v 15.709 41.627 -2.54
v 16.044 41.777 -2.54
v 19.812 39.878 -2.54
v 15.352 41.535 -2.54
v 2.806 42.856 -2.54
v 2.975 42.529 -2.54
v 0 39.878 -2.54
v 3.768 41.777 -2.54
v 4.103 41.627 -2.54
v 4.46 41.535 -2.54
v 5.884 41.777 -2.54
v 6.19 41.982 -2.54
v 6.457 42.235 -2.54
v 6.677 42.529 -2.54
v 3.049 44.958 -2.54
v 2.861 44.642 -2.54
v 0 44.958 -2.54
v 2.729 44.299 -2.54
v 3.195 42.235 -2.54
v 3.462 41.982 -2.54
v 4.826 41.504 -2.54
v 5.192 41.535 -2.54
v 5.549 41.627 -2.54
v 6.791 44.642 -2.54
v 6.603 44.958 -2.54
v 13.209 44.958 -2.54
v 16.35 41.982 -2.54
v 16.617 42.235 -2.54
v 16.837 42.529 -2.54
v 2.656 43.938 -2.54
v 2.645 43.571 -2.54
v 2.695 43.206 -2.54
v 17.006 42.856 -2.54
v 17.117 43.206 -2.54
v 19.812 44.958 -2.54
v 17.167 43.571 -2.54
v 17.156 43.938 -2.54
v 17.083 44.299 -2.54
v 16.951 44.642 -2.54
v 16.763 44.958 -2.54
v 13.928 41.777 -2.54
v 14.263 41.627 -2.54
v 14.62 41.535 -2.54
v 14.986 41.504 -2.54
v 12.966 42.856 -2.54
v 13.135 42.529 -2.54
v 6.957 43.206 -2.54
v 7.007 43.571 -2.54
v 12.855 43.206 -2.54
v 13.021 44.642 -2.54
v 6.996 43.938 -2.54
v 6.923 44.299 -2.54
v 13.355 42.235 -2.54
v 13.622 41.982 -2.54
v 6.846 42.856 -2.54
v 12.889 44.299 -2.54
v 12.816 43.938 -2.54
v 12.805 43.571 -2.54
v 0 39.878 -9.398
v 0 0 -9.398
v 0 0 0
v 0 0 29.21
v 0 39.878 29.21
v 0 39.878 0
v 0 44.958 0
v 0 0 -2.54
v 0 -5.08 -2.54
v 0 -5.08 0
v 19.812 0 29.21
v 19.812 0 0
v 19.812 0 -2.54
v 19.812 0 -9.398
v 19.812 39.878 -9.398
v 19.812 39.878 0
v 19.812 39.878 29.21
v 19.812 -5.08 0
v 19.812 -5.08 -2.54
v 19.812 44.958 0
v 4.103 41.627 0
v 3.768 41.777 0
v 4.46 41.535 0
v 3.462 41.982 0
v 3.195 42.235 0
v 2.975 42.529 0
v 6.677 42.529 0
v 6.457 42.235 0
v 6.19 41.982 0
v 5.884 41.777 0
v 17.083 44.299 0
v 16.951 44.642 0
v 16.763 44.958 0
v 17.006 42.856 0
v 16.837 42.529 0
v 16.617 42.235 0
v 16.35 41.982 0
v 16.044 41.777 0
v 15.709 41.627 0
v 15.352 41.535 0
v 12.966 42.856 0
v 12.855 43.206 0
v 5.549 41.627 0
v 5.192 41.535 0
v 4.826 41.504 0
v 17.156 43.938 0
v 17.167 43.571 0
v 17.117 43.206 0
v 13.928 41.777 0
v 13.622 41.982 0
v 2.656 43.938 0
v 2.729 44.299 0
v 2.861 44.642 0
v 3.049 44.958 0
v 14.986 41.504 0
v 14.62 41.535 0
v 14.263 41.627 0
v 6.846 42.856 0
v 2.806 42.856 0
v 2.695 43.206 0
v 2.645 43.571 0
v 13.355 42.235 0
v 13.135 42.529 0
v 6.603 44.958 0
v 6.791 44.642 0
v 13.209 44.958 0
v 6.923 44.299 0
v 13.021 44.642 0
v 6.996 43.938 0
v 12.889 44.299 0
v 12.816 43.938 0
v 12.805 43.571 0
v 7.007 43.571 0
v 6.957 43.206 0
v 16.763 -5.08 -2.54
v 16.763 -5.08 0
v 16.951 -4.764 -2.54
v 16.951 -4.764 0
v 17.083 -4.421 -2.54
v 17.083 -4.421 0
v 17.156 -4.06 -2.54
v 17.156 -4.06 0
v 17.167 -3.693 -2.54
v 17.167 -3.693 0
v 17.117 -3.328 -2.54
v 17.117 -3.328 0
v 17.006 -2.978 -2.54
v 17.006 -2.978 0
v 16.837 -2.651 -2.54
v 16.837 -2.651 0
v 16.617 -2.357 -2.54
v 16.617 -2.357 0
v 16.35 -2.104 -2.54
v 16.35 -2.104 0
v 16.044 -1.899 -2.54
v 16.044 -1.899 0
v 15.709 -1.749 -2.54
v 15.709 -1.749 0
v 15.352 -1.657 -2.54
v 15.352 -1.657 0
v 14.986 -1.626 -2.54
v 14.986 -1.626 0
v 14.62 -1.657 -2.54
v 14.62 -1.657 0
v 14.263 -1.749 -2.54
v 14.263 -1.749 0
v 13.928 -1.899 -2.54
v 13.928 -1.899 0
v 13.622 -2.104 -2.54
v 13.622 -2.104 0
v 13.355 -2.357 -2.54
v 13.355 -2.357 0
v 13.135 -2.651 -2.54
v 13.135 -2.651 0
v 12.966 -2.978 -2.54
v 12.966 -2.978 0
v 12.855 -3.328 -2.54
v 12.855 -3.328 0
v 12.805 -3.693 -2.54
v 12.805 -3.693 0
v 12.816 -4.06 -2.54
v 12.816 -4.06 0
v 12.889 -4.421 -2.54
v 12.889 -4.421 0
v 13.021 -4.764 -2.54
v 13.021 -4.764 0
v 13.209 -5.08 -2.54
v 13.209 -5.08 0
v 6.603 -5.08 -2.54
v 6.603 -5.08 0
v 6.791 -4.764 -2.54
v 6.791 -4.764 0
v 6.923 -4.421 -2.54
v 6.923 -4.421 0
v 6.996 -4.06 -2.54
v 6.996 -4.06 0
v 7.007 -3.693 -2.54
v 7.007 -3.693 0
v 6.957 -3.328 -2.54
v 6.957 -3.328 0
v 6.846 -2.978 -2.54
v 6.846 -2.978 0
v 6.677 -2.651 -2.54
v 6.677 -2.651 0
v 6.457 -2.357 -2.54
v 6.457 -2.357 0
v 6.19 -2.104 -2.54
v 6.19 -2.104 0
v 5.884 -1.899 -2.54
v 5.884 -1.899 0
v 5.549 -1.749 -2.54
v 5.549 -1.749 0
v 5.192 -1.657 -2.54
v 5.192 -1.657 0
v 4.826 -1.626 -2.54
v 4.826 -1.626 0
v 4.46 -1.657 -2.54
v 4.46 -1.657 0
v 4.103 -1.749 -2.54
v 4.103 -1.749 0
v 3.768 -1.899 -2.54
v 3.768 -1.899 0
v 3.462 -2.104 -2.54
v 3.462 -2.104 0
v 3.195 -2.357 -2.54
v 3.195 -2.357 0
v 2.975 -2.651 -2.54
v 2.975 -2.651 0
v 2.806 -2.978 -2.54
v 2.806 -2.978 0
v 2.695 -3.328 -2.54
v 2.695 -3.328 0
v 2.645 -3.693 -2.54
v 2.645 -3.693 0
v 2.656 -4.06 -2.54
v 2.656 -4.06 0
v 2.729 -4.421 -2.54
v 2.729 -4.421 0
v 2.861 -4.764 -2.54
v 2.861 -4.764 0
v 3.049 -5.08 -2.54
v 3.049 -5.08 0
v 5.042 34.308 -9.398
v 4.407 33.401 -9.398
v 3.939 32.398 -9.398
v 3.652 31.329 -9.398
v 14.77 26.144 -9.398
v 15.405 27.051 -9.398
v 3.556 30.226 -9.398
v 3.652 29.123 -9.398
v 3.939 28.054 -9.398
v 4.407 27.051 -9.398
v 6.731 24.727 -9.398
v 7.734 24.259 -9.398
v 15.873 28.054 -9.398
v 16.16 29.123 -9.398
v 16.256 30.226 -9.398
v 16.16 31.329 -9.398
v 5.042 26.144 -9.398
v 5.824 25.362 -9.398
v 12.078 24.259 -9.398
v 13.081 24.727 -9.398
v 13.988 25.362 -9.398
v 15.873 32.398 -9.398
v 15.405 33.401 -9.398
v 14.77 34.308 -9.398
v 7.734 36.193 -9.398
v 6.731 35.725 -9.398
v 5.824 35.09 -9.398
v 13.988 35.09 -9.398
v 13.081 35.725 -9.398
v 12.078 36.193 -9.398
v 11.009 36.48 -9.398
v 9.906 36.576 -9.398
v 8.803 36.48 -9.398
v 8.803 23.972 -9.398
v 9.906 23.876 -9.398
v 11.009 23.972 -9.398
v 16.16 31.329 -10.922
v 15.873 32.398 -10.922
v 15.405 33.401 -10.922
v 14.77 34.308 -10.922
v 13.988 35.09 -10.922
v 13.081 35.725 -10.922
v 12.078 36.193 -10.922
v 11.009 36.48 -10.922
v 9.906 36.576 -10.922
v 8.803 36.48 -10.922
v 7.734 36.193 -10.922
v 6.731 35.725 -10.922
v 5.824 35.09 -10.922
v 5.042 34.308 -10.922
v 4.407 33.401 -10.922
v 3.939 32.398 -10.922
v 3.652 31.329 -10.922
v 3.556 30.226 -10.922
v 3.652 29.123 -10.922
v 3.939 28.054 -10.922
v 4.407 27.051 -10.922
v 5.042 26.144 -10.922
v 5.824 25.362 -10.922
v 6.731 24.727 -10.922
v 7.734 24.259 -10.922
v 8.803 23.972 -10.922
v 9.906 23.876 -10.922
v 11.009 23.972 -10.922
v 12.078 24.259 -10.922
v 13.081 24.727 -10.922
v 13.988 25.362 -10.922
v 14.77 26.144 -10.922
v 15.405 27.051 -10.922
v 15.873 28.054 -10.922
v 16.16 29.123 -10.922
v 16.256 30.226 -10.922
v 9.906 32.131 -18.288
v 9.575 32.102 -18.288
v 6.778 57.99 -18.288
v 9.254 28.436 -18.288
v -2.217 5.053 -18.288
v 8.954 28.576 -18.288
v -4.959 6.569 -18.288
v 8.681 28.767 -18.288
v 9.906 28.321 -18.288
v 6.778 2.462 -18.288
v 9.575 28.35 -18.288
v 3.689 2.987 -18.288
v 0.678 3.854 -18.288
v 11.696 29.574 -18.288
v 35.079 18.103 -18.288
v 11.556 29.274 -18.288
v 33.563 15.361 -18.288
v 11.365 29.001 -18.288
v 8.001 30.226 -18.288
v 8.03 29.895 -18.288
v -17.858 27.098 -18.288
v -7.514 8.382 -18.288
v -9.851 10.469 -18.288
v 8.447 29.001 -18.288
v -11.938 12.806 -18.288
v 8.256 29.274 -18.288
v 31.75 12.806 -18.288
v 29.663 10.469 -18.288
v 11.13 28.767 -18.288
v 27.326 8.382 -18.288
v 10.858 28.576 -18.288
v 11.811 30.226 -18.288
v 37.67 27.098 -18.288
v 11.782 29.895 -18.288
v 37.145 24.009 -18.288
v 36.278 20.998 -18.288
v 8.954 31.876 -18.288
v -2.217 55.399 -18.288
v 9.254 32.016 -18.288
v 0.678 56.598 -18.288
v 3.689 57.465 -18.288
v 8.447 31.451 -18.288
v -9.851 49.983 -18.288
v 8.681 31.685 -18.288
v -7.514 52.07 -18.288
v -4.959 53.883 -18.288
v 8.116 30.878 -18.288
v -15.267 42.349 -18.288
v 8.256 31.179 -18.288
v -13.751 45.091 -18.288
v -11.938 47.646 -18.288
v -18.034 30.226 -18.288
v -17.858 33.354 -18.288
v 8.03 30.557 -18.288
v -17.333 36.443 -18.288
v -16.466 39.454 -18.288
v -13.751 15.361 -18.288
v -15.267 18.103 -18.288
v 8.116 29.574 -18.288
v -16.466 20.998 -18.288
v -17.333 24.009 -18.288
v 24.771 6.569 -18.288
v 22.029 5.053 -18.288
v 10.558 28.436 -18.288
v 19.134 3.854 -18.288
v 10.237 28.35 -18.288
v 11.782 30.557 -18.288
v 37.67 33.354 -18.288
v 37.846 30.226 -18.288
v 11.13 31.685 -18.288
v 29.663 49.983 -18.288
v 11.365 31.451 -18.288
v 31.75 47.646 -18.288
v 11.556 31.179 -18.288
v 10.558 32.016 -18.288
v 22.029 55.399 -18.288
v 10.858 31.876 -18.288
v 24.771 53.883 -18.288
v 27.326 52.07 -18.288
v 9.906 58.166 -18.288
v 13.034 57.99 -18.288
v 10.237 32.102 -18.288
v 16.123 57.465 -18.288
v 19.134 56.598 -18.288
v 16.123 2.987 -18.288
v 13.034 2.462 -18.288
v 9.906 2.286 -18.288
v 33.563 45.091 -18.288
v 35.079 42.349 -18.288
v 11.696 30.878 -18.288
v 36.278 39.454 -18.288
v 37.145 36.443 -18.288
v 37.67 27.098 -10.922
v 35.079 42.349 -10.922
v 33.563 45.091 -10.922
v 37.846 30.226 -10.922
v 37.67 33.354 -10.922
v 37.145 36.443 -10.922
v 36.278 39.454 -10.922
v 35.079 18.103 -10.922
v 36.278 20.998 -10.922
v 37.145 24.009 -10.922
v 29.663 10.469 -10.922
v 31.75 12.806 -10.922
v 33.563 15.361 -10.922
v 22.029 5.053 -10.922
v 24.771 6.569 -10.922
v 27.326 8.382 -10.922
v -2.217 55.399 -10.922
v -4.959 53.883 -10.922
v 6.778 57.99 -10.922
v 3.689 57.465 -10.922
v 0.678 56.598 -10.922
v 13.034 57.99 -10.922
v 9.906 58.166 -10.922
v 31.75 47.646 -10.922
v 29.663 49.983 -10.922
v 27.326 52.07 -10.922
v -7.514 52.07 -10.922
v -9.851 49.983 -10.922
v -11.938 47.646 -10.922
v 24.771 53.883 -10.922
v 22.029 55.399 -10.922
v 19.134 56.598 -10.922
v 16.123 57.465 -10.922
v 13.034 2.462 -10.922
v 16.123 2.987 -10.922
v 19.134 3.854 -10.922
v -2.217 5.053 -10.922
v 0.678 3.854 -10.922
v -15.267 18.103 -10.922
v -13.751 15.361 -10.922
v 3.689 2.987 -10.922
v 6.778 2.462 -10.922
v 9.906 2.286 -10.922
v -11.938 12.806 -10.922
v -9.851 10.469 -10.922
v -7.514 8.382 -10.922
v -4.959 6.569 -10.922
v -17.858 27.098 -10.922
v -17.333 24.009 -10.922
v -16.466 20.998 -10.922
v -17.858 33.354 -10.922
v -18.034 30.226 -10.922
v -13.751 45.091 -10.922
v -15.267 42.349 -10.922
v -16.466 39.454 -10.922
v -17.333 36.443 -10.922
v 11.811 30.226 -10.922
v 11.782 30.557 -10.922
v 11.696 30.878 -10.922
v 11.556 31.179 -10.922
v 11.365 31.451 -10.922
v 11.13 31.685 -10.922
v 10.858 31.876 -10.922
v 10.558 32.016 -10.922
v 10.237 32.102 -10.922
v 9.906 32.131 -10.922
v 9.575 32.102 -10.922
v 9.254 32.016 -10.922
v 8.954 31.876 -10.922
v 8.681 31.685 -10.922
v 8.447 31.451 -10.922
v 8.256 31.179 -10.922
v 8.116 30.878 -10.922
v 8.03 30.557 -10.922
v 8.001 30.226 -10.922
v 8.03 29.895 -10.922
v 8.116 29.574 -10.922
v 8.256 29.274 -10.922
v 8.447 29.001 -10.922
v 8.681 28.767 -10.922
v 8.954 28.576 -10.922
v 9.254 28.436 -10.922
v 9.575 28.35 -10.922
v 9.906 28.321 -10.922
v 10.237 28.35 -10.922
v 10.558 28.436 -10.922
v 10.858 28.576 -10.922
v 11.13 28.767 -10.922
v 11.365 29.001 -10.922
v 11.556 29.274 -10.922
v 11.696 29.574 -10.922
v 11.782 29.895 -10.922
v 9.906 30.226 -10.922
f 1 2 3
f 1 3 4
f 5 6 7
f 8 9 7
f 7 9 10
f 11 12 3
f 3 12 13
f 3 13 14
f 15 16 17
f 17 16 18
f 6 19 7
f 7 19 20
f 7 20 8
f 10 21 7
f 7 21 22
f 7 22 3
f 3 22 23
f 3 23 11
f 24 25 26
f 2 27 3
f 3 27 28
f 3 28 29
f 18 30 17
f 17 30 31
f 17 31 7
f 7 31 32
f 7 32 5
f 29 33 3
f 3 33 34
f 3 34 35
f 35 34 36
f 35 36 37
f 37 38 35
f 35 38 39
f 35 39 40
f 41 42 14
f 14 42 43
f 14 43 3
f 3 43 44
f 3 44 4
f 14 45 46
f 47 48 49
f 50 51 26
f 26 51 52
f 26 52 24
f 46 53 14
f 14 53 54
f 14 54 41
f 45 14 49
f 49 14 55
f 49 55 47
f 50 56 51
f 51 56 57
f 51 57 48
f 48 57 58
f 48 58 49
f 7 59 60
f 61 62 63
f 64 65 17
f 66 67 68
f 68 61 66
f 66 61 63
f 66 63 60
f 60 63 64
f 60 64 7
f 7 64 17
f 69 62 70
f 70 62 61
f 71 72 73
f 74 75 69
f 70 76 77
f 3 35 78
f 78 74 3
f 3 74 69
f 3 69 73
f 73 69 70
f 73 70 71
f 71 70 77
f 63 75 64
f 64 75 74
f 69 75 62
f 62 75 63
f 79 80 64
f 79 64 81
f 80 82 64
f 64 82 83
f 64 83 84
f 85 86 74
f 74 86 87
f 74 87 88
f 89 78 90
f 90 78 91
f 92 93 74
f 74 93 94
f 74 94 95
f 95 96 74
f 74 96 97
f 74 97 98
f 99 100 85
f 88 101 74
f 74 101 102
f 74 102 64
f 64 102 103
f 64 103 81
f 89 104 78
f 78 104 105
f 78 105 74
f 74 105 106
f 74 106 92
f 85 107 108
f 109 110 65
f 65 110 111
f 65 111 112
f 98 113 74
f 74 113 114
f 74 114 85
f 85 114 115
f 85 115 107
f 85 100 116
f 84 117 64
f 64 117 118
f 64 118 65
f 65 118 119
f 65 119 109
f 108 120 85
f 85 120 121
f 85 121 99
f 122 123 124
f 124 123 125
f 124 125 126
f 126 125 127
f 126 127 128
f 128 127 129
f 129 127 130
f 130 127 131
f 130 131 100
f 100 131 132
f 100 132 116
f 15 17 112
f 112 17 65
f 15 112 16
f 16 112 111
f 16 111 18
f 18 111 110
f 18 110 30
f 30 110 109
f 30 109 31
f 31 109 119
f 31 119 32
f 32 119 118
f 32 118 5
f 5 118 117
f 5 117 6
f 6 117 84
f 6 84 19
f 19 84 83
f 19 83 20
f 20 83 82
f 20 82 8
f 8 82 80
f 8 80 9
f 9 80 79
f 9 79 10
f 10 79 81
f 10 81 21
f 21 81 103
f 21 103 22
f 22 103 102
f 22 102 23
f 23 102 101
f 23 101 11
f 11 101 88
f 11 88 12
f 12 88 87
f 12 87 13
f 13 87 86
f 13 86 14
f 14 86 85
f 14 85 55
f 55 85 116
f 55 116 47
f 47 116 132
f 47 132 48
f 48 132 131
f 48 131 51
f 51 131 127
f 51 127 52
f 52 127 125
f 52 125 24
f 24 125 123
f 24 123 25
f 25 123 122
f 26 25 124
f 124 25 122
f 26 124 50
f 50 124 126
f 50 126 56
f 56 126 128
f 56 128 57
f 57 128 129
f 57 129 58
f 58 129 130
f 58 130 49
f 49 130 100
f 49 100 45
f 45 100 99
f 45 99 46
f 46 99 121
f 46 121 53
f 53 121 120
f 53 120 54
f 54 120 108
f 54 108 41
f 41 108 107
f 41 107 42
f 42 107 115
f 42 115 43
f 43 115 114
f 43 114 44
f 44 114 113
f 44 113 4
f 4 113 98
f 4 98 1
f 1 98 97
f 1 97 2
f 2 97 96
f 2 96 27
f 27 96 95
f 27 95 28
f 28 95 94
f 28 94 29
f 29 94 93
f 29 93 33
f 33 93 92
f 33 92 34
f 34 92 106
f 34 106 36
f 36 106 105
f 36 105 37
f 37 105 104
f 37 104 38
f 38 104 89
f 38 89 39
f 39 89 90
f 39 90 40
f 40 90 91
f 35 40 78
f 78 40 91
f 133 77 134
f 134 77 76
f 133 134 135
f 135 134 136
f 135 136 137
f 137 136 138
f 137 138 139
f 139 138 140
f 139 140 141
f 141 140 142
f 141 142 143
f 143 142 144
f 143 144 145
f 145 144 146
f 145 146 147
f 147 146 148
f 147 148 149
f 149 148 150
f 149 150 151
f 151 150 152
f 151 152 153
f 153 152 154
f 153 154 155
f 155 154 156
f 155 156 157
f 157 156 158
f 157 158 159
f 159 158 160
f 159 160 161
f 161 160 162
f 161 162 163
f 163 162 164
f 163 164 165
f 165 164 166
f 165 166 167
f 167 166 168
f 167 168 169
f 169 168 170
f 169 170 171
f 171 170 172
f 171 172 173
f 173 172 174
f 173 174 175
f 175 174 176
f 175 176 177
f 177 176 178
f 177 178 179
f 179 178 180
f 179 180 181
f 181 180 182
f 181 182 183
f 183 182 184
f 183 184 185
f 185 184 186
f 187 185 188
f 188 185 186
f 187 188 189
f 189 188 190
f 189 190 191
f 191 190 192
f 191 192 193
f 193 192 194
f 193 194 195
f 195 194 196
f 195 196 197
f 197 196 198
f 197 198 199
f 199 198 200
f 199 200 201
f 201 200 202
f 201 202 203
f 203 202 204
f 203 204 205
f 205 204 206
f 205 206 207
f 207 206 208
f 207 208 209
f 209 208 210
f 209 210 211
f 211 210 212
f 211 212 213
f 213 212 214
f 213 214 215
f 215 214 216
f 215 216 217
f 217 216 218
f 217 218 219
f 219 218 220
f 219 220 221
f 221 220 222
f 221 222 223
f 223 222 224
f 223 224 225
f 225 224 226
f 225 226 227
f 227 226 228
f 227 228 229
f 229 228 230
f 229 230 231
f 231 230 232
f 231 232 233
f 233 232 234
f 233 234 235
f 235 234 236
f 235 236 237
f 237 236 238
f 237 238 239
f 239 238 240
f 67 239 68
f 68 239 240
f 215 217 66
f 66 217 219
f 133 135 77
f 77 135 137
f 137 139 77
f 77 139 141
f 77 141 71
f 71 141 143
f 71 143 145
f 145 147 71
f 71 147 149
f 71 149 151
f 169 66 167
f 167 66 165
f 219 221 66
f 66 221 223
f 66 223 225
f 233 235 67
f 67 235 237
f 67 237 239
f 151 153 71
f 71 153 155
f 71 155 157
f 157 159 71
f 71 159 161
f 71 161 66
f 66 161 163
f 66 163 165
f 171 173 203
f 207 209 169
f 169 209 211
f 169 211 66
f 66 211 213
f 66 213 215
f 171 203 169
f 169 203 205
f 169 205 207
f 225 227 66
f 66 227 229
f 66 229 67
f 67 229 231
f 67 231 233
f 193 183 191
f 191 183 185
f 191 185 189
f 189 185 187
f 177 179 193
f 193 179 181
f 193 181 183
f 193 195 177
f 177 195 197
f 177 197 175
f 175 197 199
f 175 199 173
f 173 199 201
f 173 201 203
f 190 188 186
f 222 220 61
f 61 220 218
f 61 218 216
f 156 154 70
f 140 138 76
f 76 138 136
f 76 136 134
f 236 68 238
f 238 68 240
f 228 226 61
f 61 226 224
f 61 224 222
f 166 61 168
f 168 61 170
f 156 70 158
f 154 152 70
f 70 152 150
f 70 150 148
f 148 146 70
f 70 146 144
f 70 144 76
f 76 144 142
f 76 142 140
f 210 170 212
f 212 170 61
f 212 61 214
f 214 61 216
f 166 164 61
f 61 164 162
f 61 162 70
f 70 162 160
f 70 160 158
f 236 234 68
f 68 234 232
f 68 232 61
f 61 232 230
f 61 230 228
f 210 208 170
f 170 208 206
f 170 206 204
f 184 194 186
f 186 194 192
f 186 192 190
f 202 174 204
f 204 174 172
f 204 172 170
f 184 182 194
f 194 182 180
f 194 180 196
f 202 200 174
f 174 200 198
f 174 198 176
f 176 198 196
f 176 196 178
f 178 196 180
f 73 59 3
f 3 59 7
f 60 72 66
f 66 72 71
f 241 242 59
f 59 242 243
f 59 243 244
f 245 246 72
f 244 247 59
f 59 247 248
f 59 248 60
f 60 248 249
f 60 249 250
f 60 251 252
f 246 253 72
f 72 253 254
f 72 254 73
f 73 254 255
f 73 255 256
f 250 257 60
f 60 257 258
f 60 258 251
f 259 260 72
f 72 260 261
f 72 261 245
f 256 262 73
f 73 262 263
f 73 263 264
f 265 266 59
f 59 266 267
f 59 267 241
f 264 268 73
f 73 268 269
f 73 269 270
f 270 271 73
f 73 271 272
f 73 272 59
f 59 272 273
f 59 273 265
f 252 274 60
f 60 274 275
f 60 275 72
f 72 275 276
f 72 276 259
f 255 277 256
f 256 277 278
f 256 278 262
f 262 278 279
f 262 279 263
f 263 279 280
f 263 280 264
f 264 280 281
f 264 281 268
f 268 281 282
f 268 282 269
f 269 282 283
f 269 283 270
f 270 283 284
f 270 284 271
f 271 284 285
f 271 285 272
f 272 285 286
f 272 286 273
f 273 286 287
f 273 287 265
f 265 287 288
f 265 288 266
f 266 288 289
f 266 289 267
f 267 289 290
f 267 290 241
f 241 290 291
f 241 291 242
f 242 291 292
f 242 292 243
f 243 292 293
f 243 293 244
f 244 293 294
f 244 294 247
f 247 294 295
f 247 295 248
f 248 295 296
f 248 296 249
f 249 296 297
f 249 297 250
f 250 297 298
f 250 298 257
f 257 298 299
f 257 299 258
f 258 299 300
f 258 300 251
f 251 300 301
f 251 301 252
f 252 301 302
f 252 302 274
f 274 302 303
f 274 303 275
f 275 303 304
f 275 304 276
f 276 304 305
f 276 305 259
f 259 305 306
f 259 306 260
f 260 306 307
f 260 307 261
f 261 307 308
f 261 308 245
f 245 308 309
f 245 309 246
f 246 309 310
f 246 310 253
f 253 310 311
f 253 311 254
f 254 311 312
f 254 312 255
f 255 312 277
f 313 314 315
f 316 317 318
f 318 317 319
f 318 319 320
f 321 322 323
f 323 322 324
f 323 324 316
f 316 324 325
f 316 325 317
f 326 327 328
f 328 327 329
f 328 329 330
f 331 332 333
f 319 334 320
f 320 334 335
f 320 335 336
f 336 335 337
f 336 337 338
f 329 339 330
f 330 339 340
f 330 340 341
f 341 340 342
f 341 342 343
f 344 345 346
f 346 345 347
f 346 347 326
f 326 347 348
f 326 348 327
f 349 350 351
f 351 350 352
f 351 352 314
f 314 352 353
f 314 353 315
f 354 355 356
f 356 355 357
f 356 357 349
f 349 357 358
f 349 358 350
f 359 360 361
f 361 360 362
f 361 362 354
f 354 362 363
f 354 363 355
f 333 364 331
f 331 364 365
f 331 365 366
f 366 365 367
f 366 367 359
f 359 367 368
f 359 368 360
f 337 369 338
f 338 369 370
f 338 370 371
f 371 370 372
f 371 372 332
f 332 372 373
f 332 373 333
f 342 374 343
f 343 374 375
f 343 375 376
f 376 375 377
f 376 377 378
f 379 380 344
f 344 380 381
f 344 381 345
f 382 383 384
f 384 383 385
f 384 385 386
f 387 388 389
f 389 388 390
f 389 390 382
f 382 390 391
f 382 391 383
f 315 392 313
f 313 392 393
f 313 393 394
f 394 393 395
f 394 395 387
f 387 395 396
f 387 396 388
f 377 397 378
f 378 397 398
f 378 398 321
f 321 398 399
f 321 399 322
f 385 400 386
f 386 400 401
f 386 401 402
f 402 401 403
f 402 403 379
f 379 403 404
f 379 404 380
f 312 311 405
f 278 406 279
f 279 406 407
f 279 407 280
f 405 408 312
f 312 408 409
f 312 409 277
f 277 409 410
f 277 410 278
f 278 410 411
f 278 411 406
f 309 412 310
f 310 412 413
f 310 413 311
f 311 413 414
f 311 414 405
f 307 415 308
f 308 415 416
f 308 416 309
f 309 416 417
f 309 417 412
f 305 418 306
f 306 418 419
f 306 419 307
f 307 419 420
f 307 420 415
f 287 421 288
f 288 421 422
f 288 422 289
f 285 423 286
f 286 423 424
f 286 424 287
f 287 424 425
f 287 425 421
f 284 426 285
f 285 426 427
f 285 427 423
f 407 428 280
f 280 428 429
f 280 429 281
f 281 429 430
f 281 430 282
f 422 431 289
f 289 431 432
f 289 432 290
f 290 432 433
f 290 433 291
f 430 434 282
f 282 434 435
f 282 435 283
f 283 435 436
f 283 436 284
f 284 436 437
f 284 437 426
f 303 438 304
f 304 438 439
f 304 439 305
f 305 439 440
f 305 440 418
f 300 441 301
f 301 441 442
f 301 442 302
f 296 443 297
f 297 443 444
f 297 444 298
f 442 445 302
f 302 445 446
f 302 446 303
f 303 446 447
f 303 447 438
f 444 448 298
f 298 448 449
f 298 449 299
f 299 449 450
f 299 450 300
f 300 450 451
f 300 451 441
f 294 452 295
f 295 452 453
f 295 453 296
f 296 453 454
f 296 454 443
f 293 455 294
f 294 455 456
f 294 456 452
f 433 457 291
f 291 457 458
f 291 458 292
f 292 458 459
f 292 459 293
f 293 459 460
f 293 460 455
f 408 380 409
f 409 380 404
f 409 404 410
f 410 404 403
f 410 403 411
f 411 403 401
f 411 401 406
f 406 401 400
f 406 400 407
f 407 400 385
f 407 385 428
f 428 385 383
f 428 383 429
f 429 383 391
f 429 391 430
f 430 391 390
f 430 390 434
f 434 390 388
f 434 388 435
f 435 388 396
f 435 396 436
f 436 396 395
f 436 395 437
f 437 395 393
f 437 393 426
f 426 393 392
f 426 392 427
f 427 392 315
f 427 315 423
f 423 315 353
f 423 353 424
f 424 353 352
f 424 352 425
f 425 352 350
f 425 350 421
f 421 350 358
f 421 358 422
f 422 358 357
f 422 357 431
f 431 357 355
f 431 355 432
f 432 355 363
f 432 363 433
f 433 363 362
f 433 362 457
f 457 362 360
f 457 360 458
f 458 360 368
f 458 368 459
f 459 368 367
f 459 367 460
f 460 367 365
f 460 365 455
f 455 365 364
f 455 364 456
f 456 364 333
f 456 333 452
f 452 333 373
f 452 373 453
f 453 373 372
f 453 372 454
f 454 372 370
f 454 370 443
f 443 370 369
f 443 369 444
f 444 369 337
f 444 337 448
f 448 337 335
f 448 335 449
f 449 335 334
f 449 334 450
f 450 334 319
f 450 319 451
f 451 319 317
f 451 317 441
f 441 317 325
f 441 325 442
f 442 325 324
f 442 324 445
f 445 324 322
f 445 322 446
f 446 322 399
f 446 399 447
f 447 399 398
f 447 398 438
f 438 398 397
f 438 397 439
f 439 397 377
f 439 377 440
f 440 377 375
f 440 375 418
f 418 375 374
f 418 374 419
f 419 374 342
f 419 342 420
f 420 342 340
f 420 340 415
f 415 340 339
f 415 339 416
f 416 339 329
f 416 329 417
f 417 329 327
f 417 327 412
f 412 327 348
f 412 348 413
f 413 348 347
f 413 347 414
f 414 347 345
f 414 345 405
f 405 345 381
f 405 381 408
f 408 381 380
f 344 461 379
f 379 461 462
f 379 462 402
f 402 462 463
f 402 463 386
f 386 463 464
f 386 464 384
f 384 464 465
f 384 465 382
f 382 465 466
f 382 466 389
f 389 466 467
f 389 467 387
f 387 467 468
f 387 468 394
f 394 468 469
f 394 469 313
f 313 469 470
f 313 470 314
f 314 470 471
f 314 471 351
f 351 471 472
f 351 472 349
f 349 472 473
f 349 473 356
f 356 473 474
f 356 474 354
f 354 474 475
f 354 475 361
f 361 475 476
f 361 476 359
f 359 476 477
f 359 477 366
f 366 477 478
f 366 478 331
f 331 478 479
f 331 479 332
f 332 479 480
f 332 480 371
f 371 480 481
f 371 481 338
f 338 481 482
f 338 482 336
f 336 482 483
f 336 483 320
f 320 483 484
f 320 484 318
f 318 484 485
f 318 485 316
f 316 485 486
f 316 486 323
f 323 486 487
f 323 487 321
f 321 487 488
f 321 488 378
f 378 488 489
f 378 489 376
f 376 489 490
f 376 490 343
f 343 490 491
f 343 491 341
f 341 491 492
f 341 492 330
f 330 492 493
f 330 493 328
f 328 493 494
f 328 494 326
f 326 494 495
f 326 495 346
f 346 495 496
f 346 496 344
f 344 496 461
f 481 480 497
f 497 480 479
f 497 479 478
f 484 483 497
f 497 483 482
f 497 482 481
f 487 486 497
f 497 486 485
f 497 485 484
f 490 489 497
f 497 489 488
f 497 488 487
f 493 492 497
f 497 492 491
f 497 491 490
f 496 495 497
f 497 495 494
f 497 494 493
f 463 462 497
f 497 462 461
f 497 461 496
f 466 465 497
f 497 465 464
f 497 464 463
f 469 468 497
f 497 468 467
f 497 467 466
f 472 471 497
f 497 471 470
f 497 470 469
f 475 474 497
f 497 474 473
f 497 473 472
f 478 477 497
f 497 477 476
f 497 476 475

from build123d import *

# Parameters (mm, degrees)
SKETCH1_W           = 19.812
SKETCH1_H           = 39.878
BOSS_EXTRUDE1_DEPTH = 29.21
BOSS_EXTRUDE2_DEPTH = 2.54
SKETCH3_W           = 19.812
SKETCH3_H           = 39.878
BOSS_EXTRUDE3_DEPTH = 6.858
SKETCH4_R           = 6.35
BOSS_EXTRUDE4_DEPTH = 1.524
SKETCH9_R           = 27.94
SKETCH9_R_2         = 1.905
BOSS_EXTRUDE6_DEPTH = 7.366


with BuildPart() as part:
    # Sketch1 → Boss-Extrude1 (new body)
    with BuildSketch(Plane.XY):
        with Locations((9.906, 19.939)):
            Rectangle(SKETCH1_W, SKETCH1_H)
    extrude(amount=BOSS_EXTRUDE1_DEPTH)

    # Sketch2 → Boss-Extrude2 (add)
    with BuildSketch(Plane(origin=(0, 0, 0), x_dir=(-1, 0, 0), z_dir=(0, 0, -1))):
        with BuildLine():
            Line((0, -5.08), (-3.048725862, -5.08))
            ThreePointArc((-3.048725862, -5.08), (-4.826, -1.6256), (-6.603274138, -5.08))
            Line((-6.603274138, -5.08), (-13.208725862, -5.08))
            ThreePointArc((-13.208725862, -5.08), (-14.986, -1.6256), (-16.763274138, -5.08))
            Line((-16.763274138, -5.08), (-19.812, -5.08))
            Line((-19.812, -5.08), (-19.812, 44.958))
            Line((-19.812, 44.958), (-16.763274138, 44.958))
            ThreePointArc((-16.763274138, 44.958), (-14.986, 41.5036), (-13.208725862, 44.958))
            Line((-13.208725862, 44.958), (-6.603274138, 44.958))
            ThreePointArc((-6.603274138, 44.958), (-4.826, 41.5036), (-3.048725862, 44.958))
            Line((-3.048725862, 44.958), (0, 44.958))
            Line((0, 44.958), (0, -5.08))
        make_face()
    extrude(amount=BOSS_EXTRUDE2_DEPTH)

    # Sketch3 → Boss-Extrude3 (add)
    with BuildSketch(Plane(origin=(0, 0, -2.54), x_dir=(-1, 0, 0), z_dir=(0, 0, -1))):
        with Locations((-9.906, 19.939)):
            Rectangle(SKETCH3_W, SKETCH3_H)
    extrude(amount=BOSS_EXTRUDE3_DEPTH)

    # Sketch4 → Boss-Extrude4 (add)
    with BuildSketch(Plane(origin=(0, 0, -9.398), x_dir=(-1, 0, 0), z_dir=(0, 0, -1))):
        with Locations((-9.906, 30.226)):
            Circle(SKETCH4_R)
    extrude(amount=BOSS_EXTRUDE4_DEPTH)

    # Sketch9 → Boss-Extrude6 (add)
    with BuildSketch(Plane(origin=(0, 0, -10.922), x_dir=(-1, 0, 0), z_dir=(0, 0, -1))):
        with Locations((-9.906, 30.226)):
            Circle(SKETCH9_R)
        with Locations((-9.906, 30.226)):
            Circle(SKETCH9_R_2, mode=Mode.SUBTRACT)
    extrude(amount=BOSS_EXTRUDE6_DEPTH)


solid = part.part
